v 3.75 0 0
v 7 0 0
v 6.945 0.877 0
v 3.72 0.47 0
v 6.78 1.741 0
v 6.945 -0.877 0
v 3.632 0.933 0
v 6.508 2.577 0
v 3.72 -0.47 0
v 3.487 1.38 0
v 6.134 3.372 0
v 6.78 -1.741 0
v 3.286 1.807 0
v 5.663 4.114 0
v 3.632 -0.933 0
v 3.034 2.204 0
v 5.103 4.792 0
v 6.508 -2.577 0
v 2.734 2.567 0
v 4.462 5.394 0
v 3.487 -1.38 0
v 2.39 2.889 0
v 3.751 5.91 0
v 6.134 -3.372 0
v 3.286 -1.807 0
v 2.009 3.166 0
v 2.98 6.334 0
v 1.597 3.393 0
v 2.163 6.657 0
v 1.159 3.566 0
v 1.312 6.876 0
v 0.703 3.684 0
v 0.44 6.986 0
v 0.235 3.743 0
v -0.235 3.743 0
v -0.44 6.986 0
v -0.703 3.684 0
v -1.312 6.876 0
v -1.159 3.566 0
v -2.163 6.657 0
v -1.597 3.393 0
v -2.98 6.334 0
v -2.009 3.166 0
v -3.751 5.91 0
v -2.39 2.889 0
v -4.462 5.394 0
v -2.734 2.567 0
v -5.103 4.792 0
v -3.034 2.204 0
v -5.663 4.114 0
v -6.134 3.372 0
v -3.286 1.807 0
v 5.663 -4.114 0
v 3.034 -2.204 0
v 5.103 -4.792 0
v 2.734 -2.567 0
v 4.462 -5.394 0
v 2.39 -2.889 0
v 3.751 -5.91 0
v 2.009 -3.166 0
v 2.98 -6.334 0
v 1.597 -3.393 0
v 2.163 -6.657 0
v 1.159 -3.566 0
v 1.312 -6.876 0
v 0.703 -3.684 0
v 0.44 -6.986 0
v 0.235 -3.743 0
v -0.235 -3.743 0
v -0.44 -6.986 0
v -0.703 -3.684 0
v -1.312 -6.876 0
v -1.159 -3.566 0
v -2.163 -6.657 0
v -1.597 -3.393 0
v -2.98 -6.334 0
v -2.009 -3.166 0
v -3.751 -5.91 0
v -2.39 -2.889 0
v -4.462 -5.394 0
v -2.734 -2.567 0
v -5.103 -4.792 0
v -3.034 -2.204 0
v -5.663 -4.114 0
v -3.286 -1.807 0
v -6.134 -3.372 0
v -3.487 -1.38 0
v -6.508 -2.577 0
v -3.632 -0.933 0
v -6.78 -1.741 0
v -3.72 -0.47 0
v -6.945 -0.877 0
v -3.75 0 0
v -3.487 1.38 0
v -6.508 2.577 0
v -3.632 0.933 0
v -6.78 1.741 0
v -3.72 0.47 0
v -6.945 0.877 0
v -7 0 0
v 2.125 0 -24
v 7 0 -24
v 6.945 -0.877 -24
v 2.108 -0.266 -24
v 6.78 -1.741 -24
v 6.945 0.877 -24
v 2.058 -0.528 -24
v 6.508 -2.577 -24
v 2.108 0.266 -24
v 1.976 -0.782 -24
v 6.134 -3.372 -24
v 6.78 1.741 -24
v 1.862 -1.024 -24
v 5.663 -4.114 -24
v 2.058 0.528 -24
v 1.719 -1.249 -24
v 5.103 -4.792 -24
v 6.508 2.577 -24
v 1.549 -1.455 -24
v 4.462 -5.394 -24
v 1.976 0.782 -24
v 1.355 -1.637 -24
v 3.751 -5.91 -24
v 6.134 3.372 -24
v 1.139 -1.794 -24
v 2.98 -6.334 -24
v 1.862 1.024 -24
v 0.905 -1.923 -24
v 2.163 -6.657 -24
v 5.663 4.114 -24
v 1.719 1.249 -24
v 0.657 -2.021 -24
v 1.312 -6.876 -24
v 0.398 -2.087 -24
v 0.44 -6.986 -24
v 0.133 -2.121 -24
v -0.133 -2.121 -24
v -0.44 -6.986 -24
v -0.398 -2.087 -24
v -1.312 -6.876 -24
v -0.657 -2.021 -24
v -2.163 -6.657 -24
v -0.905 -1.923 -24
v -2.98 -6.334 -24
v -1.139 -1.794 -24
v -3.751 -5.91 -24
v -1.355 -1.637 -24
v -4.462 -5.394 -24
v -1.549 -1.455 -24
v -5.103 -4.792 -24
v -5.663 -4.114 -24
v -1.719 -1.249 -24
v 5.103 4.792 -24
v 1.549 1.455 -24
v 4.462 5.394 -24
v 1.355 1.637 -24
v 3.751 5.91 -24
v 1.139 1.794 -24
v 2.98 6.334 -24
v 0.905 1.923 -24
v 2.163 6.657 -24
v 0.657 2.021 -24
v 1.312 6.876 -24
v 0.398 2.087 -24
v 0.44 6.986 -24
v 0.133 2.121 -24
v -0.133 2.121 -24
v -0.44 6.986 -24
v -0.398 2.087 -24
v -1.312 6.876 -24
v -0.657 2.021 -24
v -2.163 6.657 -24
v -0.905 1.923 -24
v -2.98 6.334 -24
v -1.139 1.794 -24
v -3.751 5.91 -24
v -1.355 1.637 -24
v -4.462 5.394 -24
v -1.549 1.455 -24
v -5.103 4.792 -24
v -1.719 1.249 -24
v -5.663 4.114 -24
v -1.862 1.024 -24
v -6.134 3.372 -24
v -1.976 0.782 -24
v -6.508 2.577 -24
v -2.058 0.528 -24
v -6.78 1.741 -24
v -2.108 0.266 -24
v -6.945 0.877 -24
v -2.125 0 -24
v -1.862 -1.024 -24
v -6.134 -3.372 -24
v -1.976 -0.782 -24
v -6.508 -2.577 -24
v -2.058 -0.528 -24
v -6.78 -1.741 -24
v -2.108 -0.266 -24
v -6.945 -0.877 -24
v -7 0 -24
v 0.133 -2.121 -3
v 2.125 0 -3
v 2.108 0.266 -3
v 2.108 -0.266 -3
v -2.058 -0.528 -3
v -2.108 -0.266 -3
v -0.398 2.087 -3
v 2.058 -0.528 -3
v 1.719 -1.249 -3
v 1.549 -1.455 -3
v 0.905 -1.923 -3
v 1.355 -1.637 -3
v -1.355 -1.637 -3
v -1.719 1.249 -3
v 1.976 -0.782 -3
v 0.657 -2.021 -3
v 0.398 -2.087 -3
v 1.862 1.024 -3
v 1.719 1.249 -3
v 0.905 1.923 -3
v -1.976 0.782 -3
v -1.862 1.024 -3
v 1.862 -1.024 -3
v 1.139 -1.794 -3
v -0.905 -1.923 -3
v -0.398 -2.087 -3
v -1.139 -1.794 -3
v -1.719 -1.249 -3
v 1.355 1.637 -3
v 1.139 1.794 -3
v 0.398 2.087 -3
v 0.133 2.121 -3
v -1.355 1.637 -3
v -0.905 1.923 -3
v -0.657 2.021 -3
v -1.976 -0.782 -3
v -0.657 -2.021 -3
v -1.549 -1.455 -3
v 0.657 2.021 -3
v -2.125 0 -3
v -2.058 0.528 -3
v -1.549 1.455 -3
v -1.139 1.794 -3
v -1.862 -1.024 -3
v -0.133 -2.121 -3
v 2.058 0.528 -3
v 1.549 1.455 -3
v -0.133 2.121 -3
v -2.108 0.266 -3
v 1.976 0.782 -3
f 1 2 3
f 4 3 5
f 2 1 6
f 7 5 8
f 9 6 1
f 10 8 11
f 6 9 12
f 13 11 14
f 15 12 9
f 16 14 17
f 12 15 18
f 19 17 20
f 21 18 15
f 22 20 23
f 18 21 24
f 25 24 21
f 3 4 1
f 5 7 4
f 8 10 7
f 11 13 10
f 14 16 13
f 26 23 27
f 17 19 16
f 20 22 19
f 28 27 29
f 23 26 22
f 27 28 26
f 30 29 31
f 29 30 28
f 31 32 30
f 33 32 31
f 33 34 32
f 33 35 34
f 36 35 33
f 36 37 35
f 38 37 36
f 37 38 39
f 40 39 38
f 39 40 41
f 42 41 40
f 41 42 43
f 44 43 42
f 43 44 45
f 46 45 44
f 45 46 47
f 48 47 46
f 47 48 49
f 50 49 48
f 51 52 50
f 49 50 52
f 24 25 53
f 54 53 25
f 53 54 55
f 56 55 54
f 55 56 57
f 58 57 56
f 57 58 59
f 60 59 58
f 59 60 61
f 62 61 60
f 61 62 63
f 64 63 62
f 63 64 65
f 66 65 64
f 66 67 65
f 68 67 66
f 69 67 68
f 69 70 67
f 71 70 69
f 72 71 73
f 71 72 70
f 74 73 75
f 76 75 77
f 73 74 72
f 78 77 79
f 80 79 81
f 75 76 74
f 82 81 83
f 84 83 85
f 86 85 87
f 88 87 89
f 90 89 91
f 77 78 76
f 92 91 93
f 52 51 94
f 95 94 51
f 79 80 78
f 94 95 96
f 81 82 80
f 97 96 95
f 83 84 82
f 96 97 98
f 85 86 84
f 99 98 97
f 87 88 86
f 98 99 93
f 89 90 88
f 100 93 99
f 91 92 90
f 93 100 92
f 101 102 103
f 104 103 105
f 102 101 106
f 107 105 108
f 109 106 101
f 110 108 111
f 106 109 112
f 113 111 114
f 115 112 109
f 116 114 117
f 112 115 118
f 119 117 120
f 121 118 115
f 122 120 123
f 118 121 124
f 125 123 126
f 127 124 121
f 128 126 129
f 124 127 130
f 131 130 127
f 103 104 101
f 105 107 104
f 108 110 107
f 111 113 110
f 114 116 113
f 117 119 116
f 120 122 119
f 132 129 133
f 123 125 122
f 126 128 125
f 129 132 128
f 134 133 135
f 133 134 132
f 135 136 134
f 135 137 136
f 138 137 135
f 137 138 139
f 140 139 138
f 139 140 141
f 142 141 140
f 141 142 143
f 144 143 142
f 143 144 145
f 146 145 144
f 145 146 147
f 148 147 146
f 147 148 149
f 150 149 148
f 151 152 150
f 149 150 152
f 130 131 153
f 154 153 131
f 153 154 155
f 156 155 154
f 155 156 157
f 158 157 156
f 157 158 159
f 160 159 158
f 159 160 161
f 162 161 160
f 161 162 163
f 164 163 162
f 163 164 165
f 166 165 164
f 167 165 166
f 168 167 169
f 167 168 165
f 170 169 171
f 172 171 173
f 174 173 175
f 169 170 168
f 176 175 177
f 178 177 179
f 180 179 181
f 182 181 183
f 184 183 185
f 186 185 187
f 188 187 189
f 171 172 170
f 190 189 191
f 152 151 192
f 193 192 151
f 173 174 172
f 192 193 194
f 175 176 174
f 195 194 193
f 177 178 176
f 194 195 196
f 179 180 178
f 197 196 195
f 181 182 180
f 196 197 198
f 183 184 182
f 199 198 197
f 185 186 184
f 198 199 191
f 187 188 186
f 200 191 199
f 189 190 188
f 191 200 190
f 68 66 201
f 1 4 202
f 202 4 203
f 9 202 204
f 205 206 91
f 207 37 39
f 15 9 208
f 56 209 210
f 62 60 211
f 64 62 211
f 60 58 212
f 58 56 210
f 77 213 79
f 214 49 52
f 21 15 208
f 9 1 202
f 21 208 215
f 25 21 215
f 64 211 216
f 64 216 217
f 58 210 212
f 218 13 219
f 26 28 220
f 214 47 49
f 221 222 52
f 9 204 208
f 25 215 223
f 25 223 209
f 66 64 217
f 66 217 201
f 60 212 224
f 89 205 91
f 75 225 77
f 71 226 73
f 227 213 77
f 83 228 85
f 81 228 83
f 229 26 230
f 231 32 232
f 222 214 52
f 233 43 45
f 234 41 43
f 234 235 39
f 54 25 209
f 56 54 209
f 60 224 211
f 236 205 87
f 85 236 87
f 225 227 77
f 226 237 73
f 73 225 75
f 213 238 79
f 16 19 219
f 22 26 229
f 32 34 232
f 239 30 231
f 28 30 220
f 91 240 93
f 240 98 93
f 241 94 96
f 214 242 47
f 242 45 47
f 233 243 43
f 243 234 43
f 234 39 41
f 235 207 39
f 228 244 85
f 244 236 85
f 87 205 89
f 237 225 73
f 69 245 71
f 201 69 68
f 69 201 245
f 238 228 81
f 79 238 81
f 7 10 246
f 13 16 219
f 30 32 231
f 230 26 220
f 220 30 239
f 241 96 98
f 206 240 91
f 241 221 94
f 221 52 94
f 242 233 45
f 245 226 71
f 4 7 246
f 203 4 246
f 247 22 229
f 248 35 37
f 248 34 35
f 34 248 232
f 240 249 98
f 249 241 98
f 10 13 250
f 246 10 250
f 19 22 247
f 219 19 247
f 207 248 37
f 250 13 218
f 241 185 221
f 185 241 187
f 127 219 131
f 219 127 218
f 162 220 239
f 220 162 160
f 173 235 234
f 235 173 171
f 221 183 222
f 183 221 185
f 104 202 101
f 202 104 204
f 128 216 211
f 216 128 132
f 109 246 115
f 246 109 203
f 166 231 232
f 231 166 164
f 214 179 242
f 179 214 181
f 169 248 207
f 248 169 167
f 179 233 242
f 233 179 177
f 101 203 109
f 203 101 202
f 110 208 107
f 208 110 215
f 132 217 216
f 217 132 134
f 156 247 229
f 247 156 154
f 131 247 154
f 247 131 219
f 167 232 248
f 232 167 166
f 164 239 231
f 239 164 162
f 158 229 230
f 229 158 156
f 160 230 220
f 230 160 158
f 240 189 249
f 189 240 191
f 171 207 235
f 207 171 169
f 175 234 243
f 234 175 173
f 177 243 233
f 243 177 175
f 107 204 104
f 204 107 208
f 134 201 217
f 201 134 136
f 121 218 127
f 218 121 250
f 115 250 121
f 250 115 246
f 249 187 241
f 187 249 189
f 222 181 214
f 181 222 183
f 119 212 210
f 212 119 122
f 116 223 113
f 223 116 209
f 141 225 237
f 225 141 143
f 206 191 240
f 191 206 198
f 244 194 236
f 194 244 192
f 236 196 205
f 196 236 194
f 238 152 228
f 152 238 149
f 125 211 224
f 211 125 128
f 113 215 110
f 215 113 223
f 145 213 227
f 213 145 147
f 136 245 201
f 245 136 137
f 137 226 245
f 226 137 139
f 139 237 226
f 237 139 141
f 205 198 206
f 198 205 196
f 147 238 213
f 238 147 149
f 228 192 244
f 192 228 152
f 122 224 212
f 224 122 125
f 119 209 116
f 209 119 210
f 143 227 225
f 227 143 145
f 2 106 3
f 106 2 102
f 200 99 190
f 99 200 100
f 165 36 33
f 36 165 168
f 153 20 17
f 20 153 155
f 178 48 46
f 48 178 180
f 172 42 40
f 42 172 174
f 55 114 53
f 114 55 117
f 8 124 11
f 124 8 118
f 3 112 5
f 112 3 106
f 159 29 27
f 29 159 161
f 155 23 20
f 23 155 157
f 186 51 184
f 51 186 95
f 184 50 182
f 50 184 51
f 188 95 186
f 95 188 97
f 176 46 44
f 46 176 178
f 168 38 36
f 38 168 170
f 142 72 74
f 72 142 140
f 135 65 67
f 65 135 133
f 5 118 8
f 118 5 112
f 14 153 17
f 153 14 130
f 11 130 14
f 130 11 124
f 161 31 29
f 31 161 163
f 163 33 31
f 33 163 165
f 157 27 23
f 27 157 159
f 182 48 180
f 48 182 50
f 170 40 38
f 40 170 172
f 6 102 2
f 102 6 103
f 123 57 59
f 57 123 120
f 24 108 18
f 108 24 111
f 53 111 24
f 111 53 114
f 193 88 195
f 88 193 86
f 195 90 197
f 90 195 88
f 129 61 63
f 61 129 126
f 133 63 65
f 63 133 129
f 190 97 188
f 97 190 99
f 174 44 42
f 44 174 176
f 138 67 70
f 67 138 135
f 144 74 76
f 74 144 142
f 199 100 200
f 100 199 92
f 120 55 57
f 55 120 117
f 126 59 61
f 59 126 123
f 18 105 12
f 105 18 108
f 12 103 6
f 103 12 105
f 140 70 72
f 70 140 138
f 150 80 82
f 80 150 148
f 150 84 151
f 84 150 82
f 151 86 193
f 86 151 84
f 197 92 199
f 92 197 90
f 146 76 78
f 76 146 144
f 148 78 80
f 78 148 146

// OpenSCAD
$fn = 50;


difference() {
	union() {
		translate(v = [0, 0, -24.0000000000]) {
			cylinder(h = 24, r = 7.0000000000);
		}
		cylinder(h = 0, r = 10.0000000000);
	}
	union() {
		translate(v = [0, 0, 0]) {
			rotate(a = [0, 0, 0]) {
				difference() {
					union() {
						#translate(v = [0, 0, -24.0000000000]) {
							cylinder(h = 24, r = 2.0000000000);
						}
						#translate(v = [0, 0, -3]) {
							cylinder(h = 3, r1 = 2.1250000000, r2 = 3.7500000000);
						}
						#translate(v = [0, 0, -24.0000000000]) {
							cylinder(h = 24, r = 2.1250000000);
						}
						#translate(v = [0, 0, -24.0000000000]) {
							cylinder(h = 24, r = 2.0000000000);
						}
					}
					union();
				}
			}
		}
	}
}
